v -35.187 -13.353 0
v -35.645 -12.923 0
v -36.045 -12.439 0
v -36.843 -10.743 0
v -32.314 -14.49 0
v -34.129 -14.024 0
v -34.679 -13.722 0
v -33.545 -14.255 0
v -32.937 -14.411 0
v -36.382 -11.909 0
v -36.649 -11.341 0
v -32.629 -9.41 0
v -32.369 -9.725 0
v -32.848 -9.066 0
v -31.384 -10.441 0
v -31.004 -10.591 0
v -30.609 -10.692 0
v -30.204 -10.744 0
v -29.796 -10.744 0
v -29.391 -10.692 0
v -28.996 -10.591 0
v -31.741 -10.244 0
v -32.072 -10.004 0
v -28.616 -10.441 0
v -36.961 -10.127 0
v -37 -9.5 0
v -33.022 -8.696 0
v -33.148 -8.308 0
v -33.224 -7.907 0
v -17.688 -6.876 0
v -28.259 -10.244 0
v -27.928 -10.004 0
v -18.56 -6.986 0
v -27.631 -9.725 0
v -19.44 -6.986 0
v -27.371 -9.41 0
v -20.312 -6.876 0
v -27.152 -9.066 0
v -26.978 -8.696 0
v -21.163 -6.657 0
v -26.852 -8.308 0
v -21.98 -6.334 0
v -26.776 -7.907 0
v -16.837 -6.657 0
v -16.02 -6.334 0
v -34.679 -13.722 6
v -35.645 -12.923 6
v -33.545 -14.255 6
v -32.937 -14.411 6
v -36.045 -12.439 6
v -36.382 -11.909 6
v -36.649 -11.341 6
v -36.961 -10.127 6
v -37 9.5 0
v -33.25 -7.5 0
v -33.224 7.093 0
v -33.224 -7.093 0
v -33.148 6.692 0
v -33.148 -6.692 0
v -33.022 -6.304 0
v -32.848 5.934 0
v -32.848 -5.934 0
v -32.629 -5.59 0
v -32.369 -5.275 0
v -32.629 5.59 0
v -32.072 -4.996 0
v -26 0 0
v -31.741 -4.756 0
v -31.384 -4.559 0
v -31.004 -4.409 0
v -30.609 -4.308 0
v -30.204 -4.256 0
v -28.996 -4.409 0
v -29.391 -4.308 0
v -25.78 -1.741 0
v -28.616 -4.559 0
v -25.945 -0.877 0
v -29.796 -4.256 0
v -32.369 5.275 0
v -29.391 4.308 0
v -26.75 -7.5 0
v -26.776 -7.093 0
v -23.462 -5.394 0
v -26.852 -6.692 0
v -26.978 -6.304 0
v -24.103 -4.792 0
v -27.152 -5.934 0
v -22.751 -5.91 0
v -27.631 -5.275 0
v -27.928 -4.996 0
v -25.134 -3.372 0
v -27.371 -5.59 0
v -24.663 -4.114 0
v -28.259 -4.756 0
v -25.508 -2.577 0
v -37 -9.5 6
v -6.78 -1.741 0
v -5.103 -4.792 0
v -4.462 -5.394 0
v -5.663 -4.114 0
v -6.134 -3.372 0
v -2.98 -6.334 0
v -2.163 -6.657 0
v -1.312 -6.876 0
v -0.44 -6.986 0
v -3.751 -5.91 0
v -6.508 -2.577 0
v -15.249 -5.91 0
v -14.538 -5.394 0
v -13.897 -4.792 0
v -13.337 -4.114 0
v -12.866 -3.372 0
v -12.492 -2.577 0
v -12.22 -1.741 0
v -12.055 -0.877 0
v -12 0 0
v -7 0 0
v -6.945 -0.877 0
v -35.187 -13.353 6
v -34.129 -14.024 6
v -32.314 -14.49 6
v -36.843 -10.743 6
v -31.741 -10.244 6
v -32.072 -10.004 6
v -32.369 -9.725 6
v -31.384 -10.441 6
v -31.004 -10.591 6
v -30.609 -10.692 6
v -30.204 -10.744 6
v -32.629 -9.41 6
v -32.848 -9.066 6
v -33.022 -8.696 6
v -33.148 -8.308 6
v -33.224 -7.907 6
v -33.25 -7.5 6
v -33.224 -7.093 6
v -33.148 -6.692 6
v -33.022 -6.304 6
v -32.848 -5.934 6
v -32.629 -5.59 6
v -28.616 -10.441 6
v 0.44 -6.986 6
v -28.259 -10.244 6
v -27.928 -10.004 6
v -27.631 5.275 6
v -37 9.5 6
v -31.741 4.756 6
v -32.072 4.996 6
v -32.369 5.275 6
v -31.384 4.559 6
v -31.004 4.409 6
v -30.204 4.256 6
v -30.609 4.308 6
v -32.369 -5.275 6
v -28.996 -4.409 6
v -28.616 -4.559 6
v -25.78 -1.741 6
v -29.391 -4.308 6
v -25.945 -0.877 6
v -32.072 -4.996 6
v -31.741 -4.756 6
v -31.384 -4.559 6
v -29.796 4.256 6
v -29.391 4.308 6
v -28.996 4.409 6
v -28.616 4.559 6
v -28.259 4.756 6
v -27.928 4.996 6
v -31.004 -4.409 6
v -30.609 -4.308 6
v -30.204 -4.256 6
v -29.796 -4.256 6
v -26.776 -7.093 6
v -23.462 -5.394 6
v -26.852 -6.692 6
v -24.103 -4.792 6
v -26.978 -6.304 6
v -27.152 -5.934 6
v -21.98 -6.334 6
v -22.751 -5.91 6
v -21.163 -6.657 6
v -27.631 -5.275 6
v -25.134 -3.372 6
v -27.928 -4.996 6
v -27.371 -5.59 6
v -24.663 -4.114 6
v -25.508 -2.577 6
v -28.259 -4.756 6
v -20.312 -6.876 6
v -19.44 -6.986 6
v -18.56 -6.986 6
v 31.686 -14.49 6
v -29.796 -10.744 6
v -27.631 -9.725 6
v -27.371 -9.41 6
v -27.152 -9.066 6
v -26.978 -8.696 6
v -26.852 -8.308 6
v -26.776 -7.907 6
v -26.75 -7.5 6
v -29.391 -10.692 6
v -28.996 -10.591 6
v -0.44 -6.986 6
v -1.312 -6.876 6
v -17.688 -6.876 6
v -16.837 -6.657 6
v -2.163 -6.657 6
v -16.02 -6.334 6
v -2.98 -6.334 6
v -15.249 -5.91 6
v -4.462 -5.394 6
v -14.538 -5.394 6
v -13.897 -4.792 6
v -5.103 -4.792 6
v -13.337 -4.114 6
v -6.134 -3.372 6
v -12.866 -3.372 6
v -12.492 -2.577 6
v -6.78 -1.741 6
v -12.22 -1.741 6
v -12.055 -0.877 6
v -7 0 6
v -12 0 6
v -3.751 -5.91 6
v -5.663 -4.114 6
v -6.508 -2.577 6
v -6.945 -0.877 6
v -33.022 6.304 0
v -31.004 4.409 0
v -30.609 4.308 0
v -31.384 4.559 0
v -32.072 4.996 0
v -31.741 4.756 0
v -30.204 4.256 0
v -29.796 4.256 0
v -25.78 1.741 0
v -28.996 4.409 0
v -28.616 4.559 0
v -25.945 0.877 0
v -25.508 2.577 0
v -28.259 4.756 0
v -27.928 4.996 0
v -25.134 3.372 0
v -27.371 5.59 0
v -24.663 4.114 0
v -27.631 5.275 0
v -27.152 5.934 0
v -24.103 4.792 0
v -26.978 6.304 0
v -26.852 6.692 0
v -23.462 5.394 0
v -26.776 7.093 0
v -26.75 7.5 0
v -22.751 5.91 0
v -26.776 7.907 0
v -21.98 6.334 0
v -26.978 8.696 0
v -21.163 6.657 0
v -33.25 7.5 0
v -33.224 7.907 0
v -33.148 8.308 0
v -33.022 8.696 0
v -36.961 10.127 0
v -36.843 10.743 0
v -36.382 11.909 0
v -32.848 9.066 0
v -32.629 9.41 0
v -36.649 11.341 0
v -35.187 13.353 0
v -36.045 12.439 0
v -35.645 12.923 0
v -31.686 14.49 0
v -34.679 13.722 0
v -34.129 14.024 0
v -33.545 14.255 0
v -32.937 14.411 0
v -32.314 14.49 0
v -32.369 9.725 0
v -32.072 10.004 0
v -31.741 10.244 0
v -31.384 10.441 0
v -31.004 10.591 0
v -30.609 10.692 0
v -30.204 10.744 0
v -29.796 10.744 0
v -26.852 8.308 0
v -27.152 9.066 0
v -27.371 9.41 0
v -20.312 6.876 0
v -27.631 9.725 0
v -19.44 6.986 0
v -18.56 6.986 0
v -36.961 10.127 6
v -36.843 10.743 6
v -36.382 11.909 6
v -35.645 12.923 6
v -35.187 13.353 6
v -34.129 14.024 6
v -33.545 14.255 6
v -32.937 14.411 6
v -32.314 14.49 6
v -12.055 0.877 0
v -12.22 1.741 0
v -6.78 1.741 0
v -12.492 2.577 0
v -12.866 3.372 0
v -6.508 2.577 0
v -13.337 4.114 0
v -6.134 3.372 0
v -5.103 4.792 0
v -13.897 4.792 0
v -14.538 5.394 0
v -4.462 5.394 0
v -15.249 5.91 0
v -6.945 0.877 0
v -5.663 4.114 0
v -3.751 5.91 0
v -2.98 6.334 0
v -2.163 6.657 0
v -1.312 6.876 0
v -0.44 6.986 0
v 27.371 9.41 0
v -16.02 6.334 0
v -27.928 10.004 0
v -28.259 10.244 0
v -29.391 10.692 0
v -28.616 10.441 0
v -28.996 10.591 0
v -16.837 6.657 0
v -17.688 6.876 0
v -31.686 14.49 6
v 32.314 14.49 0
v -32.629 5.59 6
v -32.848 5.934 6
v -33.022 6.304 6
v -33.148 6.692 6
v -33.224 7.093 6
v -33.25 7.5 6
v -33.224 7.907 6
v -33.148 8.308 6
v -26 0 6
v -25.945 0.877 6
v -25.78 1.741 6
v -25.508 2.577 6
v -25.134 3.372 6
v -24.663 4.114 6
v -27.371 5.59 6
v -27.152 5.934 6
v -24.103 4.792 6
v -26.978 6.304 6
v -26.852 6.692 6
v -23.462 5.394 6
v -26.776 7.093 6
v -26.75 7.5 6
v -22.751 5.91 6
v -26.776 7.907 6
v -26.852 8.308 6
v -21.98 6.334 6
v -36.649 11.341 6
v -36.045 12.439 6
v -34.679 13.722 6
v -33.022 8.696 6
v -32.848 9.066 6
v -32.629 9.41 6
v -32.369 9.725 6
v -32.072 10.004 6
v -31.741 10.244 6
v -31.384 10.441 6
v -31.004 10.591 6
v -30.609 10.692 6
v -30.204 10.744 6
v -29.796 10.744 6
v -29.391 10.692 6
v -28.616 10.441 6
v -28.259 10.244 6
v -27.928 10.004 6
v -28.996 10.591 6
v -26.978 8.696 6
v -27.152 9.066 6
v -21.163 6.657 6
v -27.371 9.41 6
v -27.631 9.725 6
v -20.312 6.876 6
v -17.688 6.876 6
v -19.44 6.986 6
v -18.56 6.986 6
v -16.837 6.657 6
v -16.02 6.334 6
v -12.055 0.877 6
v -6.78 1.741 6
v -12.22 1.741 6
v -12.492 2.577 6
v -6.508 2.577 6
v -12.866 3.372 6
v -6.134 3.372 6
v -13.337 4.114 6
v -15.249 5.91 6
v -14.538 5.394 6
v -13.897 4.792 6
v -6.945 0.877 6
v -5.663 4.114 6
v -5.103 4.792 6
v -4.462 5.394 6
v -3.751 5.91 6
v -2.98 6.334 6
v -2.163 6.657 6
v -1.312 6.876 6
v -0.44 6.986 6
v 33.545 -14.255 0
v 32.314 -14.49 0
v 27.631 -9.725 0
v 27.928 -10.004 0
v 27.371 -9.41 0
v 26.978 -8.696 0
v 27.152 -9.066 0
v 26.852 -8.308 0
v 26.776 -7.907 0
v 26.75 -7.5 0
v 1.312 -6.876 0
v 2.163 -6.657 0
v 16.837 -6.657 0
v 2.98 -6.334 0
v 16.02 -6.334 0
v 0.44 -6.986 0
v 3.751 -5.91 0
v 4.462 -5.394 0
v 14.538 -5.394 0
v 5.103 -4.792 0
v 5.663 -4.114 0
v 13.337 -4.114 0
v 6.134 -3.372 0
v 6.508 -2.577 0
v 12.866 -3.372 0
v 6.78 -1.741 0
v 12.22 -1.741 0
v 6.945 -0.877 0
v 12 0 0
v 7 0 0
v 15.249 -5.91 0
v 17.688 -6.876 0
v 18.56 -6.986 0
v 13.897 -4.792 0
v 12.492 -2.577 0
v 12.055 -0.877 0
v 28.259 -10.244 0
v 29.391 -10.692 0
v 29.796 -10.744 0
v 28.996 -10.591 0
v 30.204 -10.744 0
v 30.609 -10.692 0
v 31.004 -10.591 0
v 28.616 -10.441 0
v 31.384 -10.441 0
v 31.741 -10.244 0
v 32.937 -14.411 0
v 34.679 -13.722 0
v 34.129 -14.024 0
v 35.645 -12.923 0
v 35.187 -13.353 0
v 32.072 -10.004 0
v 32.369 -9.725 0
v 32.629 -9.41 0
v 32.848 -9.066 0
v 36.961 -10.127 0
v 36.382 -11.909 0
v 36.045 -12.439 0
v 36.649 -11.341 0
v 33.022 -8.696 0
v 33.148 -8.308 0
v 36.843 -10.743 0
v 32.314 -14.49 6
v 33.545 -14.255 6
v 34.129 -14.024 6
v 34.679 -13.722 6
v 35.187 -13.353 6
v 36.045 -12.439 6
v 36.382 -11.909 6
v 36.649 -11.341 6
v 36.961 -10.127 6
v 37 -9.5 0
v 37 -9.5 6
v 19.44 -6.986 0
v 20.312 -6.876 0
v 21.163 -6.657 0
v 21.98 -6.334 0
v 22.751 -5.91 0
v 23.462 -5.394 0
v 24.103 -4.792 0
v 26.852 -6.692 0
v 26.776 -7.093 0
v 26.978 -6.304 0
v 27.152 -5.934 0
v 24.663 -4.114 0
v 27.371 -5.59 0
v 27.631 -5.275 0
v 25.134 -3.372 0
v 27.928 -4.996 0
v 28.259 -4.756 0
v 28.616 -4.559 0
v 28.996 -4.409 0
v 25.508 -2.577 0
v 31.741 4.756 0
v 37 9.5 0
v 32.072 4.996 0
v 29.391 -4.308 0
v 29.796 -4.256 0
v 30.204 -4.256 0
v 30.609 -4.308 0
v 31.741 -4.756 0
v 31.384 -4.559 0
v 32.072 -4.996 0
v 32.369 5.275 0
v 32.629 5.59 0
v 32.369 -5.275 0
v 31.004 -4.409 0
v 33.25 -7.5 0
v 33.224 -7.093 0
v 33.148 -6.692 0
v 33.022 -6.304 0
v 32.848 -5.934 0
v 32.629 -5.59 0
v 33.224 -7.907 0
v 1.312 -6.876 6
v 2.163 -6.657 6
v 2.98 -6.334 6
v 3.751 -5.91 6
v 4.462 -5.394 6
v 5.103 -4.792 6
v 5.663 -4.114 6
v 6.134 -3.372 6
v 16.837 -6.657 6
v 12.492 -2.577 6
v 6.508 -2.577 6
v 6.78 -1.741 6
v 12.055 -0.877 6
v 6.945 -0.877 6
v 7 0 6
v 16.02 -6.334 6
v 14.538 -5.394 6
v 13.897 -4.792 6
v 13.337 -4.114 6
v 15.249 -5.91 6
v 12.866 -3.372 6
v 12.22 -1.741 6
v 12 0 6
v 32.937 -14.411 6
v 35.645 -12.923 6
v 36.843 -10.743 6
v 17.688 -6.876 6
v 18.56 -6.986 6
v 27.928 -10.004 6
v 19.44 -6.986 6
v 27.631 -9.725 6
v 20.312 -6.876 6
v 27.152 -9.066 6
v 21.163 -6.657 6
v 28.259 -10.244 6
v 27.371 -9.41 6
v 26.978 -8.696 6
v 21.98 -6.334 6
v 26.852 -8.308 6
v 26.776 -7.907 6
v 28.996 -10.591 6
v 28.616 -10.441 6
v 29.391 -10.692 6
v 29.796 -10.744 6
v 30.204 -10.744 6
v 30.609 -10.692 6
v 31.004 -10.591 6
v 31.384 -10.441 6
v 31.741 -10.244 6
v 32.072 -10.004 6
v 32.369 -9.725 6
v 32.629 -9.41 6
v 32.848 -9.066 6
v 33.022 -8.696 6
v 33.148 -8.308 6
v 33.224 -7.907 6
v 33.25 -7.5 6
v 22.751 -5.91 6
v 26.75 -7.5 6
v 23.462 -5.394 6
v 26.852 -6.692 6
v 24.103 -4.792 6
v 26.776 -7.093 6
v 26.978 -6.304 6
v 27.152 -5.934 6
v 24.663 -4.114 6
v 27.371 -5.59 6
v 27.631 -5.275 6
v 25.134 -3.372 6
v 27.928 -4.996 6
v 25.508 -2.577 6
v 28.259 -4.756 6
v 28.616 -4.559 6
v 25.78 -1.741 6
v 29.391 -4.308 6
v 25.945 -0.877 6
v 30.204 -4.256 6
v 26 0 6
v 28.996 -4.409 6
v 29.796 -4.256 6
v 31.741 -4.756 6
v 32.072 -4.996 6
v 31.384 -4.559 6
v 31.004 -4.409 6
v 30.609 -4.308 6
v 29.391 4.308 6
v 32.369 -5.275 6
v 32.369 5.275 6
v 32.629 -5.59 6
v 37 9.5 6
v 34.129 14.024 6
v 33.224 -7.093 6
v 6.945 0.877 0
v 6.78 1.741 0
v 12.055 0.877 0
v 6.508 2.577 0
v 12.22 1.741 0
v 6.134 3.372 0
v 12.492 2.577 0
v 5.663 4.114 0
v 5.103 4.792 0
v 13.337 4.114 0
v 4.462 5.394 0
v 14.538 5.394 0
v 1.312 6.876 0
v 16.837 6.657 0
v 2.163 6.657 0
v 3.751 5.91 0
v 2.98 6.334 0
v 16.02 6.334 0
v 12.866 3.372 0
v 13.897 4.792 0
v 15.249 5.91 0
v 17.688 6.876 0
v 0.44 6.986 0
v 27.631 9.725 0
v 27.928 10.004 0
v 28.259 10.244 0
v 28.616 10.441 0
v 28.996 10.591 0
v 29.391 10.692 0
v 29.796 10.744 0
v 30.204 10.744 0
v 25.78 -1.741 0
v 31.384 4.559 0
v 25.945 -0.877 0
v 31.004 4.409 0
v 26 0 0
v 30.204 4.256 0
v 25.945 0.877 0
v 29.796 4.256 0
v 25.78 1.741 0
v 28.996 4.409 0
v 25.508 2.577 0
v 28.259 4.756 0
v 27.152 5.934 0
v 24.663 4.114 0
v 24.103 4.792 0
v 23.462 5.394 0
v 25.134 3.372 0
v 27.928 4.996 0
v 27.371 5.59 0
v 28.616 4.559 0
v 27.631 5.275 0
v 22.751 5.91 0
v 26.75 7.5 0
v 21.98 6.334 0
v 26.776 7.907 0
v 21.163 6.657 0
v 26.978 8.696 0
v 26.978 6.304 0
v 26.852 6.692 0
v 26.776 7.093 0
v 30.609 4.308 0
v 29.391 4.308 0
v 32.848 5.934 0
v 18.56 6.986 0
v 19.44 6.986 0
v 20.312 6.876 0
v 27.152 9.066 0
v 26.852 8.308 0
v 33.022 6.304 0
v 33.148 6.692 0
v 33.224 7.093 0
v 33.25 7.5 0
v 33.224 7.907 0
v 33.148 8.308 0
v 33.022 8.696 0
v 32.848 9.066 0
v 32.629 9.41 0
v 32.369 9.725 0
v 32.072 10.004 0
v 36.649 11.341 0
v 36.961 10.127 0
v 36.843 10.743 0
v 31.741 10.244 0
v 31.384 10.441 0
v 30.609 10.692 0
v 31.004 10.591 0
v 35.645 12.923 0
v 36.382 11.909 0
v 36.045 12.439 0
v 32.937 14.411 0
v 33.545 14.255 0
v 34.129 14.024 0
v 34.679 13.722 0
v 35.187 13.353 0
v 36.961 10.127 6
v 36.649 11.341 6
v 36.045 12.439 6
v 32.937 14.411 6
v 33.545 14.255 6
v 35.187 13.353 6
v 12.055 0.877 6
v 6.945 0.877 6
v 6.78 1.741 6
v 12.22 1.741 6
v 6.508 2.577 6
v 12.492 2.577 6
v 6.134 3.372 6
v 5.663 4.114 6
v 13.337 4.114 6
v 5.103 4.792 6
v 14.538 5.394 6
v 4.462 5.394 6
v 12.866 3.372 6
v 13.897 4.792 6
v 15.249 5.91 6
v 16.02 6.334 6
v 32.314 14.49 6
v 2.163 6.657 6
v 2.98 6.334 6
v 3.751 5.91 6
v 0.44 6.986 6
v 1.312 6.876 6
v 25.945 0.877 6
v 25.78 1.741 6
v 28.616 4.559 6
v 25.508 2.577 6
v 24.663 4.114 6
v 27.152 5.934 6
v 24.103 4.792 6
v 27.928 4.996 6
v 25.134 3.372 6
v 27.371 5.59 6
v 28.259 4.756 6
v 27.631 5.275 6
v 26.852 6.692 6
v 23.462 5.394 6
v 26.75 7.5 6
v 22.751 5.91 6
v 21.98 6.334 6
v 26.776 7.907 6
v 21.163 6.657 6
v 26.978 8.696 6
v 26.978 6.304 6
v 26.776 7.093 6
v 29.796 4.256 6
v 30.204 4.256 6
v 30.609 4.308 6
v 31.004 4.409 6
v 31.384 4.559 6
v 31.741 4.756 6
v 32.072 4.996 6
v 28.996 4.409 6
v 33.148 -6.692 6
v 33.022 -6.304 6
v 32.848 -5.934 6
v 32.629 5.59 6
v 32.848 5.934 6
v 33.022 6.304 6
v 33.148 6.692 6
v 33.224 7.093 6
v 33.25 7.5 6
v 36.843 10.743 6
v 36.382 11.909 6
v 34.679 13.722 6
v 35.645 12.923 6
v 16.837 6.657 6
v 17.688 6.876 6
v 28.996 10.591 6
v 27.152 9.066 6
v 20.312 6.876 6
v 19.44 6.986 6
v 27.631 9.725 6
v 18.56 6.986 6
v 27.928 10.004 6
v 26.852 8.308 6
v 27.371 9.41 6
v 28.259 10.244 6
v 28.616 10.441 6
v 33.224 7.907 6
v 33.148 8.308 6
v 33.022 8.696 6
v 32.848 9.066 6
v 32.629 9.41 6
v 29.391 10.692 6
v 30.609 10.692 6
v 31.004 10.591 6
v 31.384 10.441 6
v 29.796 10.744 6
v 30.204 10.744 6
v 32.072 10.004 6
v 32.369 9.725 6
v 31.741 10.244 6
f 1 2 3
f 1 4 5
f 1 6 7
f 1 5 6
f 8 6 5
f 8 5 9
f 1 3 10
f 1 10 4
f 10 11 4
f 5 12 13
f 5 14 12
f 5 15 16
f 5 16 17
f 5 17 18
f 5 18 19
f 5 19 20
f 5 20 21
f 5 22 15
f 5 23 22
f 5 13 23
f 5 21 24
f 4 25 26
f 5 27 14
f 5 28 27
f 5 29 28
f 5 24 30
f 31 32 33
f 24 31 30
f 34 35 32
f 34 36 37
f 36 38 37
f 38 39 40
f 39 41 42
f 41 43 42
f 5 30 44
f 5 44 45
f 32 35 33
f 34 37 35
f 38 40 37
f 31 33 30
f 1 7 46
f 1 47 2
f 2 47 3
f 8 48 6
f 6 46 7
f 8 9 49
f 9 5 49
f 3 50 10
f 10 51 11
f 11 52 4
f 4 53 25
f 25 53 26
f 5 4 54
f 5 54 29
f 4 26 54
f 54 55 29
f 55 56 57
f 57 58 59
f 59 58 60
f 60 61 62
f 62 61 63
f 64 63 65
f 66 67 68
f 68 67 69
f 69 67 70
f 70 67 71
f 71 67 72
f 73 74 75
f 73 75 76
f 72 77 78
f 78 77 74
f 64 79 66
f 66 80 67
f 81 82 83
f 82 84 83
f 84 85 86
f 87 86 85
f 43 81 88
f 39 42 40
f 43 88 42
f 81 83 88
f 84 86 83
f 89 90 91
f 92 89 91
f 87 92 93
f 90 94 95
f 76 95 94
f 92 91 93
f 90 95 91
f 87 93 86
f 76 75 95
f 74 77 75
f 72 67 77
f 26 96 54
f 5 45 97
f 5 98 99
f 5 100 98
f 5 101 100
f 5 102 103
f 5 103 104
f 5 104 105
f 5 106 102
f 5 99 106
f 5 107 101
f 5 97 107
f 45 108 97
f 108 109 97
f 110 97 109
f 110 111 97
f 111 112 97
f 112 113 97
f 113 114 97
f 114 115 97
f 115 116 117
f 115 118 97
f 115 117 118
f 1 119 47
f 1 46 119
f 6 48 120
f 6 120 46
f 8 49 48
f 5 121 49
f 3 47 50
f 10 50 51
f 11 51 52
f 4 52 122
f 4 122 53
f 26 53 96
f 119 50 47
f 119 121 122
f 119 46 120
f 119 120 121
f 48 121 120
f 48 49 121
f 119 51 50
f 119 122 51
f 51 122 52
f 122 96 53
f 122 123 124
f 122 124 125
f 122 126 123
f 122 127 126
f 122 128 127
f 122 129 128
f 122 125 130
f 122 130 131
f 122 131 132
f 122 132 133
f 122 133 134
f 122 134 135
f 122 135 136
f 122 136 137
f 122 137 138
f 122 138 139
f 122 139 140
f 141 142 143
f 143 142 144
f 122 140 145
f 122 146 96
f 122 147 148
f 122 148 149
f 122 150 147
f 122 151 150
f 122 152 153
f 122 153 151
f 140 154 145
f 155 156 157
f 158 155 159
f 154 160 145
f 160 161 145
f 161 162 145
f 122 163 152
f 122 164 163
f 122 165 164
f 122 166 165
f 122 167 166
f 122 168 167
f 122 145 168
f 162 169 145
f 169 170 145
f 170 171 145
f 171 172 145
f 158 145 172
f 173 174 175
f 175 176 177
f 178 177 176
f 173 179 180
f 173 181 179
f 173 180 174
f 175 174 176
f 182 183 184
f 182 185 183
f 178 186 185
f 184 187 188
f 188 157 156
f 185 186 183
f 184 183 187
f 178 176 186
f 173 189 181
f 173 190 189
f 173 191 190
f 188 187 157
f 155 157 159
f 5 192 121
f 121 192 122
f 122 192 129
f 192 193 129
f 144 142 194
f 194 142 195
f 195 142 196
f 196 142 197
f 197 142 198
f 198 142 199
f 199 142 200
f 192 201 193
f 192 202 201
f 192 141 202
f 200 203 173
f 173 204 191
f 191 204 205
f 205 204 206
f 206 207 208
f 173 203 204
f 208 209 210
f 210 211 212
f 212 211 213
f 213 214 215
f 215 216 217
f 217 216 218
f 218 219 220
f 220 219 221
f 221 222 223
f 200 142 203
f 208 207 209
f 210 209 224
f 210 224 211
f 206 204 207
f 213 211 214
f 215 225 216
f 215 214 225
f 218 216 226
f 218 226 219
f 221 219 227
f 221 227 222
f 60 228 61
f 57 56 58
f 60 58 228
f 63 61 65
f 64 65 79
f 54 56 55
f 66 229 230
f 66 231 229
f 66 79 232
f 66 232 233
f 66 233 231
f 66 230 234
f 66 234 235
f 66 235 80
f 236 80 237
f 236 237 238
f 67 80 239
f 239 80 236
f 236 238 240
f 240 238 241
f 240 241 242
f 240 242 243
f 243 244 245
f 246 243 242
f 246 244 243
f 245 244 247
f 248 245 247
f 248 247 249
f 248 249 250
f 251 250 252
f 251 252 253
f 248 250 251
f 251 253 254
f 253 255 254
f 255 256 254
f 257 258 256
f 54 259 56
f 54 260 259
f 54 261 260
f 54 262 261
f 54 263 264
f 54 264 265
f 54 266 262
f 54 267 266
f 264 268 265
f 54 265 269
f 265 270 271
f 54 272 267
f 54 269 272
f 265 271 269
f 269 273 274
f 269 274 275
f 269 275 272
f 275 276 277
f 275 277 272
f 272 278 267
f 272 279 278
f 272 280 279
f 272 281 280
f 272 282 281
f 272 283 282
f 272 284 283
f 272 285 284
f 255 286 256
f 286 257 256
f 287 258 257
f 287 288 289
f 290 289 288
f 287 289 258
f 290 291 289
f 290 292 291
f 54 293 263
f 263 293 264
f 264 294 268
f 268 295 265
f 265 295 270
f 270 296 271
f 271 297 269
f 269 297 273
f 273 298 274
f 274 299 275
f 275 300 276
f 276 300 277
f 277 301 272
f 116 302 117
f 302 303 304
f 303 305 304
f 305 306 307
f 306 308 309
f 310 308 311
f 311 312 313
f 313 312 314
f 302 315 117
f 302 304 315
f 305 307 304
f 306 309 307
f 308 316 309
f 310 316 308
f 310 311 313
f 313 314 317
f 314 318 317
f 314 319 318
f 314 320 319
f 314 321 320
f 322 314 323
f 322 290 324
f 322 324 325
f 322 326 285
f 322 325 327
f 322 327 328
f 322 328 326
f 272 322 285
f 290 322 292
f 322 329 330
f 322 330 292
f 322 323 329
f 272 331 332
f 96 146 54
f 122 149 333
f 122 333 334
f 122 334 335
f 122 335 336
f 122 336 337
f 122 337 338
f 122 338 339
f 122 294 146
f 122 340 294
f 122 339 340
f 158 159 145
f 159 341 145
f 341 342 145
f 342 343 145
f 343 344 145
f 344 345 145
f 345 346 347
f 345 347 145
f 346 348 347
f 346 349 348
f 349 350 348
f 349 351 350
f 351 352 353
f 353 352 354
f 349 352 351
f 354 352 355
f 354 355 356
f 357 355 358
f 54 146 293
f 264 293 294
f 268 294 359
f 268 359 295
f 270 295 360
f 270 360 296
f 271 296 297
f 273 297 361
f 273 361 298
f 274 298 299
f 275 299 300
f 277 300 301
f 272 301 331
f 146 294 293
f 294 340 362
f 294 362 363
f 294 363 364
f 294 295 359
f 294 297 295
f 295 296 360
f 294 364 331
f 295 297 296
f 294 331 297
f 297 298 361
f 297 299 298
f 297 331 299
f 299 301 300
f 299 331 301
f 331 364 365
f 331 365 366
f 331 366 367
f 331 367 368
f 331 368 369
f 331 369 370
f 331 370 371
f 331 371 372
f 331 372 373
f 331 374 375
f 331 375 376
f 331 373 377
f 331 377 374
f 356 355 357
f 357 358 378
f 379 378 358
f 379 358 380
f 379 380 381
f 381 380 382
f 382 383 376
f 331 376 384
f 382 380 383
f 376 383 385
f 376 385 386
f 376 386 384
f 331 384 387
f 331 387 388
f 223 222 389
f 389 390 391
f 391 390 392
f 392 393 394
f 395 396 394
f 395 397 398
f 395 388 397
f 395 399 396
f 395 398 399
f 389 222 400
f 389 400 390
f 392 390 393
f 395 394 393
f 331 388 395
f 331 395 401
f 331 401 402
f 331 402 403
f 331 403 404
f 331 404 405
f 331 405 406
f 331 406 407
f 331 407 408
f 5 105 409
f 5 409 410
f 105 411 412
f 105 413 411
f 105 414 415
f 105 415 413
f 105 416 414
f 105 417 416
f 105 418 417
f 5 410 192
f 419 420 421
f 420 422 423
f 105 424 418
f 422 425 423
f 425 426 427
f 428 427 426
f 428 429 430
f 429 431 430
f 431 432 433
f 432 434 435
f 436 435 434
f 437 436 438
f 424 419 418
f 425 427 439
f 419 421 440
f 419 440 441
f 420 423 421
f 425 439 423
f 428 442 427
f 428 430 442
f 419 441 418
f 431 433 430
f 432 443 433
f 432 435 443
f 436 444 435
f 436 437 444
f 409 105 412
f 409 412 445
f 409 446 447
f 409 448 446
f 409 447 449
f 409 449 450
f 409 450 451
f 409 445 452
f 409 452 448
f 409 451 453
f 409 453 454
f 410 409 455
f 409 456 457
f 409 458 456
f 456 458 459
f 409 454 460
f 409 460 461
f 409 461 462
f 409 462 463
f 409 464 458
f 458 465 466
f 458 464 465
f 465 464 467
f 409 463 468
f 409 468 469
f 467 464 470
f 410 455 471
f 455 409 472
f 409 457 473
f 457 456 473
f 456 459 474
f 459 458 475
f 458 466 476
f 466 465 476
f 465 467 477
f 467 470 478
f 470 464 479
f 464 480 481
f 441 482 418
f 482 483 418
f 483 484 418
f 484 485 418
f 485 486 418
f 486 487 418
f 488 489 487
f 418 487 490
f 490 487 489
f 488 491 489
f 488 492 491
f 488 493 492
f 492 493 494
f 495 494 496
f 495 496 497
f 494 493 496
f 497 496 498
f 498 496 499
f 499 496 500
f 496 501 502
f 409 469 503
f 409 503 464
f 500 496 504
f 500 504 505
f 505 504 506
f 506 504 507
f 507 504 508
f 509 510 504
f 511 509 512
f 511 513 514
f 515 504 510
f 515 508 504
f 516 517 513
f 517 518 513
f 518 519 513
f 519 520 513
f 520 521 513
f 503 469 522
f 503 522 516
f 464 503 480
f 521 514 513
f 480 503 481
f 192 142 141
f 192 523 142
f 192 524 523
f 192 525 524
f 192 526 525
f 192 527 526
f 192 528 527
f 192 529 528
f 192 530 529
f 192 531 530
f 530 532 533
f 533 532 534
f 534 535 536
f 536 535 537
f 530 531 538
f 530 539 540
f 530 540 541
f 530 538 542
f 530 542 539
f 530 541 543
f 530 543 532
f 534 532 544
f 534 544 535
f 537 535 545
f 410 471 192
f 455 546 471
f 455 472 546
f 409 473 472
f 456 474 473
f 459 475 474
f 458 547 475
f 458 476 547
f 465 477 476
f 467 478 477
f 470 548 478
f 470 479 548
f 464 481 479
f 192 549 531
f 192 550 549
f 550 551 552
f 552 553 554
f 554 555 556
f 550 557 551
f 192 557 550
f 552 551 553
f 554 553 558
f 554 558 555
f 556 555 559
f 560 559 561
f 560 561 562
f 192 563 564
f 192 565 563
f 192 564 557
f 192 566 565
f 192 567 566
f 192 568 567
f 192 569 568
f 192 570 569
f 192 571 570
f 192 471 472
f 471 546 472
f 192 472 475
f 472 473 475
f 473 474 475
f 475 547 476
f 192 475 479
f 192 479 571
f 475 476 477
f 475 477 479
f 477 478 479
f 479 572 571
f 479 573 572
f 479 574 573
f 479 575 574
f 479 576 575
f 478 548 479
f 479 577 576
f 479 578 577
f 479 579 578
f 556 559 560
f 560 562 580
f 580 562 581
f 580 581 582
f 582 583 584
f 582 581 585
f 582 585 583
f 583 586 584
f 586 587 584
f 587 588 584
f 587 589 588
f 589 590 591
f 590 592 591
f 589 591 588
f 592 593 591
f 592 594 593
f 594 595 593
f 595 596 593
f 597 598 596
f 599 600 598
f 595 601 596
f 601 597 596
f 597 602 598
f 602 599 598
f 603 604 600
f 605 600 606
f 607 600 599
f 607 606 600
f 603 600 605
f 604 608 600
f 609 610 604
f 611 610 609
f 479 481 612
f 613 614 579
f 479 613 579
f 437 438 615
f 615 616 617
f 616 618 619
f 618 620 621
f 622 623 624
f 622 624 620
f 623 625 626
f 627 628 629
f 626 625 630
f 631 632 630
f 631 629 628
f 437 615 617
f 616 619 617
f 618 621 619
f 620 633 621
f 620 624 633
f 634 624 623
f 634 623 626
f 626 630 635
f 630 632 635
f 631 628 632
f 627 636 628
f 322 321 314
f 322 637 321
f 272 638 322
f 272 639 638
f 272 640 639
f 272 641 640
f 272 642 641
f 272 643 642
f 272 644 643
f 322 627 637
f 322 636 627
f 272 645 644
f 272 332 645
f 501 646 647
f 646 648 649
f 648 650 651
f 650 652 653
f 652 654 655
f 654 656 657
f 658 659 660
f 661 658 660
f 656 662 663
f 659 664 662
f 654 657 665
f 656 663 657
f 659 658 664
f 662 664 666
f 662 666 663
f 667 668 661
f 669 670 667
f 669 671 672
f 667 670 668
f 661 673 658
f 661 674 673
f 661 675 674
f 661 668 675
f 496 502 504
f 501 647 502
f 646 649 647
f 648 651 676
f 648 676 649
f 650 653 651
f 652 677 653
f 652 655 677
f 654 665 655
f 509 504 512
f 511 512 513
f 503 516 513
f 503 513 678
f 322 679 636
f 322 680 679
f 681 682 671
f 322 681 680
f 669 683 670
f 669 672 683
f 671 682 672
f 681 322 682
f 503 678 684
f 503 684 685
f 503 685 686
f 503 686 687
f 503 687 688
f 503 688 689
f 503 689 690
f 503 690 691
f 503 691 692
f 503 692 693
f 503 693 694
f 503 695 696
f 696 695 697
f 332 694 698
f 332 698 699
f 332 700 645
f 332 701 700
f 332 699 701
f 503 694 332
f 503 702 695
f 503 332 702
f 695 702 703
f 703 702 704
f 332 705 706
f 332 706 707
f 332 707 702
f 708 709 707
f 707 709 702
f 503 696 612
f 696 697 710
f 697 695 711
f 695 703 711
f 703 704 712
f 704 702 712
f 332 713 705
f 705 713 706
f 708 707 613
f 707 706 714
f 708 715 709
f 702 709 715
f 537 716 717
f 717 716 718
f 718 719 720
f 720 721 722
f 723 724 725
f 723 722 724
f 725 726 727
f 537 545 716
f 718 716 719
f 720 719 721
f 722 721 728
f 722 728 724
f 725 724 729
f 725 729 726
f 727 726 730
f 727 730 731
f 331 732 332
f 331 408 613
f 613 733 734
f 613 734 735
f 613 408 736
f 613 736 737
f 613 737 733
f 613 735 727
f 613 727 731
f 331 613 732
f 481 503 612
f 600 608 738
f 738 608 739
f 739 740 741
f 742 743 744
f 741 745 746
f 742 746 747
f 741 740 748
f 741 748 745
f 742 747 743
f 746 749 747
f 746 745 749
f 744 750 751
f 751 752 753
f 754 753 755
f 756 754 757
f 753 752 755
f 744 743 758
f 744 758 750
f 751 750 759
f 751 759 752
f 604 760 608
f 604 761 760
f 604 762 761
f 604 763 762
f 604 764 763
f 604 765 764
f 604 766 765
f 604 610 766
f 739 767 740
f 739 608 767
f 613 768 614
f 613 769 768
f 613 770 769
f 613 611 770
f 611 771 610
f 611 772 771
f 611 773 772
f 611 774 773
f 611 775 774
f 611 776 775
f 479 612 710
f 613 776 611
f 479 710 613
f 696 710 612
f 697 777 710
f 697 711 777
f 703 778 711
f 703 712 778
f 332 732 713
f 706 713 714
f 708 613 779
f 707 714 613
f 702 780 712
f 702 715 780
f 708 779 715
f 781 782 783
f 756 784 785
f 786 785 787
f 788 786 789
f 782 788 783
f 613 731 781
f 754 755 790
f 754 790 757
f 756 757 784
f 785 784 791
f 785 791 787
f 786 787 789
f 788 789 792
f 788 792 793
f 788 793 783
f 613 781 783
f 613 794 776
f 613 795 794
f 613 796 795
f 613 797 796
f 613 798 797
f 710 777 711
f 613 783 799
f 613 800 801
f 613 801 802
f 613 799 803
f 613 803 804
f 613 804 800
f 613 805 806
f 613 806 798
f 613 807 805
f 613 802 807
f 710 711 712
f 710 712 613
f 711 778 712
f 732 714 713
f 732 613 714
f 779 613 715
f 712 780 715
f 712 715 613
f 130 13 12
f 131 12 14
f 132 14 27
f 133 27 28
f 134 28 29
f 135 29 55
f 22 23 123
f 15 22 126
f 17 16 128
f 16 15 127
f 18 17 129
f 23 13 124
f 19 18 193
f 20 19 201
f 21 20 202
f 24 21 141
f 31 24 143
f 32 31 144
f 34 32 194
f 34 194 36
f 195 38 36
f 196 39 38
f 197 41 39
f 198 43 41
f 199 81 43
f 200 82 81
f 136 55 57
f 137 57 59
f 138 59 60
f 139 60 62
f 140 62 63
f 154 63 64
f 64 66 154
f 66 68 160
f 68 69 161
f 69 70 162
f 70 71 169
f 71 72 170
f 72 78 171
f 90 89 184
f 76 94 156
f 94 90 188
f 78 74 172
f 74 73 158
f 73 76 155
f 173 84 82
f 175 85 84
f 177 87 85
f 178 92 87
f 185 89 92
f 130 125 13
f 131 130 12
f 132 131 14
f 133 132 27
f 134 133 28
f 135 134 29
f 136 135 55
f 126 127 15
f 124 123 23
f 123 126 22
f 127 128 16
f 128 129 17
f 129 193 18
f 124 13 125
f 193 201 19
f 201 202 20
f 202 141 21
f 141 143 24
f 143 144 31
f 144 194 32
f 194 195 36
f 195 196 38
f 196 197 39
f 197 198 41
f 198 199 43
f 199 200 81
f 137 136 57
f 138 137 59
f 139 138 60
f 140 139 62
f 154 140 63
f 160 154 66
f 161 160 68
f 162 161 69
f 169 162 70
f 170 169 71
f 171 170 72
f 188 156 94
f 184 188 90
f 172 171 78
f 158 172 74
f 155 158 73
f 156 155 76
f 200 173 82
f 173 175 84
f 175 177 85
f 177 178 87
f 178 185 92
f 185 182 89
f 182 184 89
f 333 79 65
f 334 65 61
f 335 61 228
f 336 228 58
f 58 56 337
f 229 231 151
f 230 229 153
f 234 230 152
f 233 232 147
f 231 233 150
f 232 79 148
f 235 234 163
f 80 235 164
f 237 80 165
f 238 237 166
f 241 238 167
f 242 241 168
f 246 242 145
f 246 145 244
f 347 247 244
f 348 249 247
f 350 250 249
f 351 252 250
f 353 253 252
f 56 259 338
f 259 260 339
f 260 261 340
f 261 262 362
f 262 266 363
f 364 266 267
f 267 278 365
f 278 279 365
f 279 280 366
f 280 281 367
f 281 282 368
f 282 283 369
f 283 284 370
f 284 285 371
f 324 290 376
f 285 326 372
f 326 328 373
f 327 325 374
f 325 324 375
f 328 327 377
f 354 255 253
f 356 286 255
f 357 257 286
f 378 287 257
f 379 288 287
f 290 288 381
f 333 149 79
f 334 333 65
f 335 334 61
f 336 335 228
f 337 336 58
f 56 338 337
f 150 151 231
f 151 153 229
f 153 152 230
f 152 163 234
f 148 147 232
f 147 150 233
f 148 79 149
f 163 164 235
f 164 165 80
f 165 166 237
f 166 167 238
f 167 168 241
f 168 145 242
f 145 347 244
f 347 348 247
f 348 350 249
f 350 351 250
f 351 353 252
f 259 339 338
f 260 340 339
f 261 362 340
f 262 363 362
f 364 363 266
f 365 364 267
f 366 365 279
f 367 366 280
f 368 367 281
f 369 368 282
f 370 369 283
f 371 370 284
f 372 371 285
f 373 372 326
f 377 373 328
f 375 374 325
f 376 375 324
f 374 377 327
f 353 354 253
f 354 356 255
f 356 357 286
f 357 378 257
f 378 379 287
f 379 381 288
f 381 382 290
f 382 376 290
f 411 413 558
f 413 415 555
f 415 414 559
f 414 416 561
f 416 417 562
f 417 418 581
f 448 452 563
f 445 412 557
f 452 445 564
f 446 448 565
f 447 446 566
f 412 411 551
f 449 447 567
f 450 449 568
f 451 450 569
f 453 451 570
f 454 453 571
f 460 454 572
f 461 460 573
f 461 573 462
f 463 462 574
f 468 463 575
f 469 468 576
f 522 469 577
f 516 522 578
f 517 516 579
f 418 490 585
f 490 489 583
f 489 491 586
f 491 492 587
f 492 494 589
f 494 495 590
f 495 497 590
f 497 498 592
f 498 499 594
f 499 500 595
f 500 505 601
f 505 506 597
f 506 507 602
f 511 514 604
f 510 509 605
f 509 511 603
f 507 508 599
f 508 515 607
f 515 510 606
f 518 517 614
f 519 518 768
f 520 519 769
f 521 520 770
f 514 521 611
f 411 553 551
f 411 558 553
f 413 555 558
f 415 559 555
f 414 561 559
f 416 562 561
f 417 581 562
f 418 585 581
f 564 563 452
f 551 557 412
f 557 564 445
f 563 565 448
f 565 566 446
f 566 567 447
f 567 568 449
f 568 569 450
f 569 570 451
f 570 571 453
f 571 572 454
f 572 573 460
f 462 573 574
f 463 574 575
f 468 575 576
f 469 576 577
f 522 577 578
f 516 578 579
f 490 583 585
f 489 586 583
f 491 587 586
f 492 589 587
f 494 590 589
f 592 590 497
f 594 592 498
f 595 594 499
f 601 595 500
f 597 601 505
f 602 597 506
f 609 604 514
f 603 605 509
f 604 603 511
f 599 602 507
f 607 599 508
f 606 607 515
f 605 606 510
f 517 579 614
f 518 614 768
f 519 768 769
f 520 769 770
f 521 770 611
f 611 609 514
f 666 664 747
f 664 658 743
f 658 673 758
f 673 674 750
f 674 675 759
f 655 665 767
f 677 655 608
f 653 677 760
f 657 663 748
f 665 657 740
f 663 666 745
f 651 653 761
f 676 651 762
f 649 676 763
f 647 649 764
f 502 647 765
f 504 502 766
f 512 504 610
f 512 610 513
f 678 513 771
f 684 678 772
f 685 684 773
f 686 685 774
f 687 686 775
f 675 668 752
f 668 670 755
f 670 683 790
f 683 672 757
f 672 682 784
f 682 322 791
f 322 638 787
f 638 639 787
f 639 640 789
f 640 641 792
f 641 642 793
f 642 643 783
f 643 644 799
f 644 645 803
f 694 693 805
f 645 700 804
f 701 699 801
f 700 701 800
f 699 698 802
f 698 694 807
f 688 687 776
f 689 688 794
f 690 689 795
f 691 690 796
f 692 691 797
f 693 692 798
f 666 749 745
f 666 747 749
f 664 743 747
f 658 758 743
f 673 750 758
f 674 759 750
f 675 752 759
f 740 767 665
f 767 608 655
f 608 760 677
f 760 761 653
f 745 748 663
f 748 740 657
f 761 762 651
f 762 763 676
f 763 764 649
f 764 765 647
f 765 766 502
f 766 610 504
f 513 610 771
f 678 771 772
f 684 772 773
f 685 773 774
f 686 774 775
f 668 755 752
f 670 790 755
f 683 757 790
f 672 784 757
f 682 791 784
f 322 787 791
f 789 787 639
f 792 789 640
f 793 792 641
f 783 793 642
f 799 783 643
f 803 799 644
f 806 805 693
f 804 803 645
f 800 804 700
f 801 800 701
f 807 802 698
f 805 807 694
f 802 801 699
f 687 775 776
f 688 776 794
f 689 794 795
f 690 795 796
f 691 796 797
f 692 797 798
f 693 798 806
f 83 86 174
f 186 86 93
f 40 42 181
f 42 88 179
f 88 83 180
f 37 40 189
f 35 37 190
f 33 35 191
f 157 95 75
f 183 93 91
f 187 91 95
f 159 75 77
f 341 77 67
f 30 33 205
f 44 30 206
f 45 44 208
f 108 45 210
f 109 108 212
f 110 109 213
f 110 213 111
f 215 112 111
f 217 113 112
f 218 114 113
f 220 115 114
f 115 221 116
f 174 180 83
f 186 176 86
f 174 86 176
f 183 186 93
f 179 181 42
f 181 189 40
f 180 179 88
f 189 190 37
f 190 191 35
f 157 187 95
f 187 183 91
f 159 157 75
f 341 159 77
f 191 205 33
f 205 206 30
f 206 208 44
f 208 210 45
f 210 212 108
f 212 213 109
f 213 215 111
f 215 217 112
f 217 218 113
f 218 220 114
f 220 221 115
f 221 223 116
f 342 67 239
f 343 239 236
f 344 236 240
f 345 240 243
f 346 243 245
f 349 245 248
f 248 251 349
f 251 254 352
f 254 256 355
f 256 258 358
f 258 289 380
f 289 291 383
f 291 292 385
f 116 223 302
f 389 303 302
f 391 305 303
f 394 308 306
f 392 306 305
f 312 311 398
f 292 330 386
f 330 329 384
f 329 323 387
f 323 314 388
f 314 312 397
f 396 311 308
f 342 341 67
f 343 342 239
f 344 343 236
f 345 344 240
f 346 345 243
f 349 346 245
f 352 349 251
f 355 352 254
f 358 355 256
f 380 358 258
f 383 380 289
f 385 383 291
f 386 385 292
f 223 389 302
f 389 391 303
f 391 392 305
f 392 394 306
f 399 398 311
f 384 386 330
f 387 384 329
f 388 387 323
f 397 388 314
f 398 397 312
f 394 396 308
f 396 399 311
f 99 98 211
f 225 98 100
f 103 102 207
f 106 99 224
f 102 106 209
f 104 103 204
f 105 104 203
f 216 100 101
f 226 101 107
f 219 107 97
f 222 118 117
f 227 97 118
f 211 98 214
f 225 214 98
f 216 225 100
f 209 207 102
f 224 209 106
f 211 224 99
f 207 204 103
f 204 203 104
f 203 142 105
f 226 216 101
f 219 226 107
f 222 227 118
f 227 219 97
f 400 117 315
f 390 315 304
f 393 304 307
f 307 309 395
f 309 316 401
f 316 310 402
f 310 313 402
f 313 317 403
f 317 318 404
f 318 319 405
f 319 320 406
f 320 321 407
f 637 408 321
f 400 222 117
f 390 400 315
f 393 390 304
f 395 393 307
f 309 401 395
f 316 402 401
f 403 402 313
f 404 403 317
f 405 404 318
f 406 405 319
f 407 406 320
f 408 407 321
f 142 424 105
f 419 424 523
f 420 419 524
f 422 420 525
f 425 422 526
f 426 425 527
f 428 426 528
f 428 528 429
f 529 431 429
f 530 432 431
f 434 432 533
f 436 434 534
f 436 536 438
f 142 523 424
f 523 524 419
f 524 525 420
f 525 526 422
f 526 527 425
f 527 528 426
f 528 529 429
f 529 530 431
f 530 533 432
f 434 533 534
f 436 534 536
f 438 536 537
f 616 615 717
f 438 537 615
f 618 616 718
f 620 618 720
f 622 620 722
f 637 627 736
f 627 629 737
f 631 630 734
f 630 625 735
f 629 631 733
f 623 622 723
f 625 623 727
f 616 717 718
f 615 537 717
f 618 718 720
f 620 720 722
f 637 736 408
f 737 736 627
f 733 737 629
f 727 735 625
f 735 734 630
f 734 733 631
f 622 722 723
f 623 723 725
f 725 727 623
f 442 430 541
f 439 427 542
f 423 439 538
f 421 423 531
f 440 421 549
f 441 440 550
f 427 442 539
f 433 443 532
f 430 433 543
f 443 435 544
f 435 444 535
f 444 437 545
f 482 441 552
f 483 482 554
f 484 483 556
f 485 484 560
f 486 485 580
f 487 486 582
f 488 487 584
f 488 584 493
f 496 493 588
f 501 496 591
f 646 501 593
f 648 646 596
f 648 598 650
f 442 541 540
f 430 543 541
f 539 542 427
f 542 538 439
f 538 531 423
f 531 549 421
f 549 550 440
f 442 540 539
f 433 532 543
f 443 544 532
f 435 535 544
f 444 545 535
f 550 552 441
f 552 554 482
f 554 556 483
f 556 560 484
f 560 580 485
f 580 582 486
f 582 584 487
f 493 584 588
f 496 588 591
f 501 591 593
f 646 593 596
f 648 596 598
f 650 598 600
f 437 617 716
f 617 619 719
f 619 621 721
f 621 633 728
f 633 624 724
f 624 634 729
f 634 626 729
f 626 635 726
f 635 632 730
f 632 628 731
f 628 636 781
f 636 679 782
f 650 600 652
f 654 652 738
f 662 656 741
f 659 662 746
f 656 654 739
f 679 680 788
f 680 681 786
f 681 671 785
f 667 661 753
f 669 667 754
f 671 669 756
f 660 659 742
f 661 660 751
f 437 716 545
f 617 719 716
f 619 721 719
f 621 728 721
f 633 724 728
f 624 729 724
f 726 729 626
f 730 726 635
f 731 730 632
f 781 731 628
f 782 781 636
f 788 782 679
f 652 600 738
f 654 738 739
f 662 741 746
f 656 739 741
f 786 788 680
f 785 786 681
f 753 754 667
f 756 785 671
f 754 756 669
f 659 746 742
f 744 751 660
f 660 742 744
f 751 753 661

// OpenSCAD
$fn = 50;

difference() {
	union() {
		hull() {
			translate(v = [-32.0, 9.5, 0]) {
				cylinder(h = 6, r = 5);
			}
			translate(v = [32.0, 9.5, 0]) {
				cylinder(h = 6, r = 5);
			}
			translate(v = [-32.0, -9.5, 0]) {
				cylinder(h = 6, r = 5);
			}
			translate(v = [32.0, -9.5, 0]) {
				cylinder(h = 6, r = 5);
			}
		}
	}
	union() {
		translate(v = [-30.0, -7.5, 0]) {
			cylinder(h = 6, r = 3.25);
		}
		translate(v = [-30.0, 7.5, 0]) {
			cylinder(h = 6, r = 3.25);
		}
		translate(v = [30.0, -7.5, 0]) {
			cylinder(h = 6, r = 3.25);
		}
		translate(v = [30.0, 7.5, 0]) {
			cylinder(h = 6, r = 3.25);
		}
		translate(v = [-19.0, 0, 0.0]) {
			cylinder(h = 6, r = 7.0);
		}
		cylinder(h = 6, r = 7.0);
		translate(v = [19.0, 0, 0.0]) {
			cylinder(h = 6, r = 7.0);
		}
	}
}
